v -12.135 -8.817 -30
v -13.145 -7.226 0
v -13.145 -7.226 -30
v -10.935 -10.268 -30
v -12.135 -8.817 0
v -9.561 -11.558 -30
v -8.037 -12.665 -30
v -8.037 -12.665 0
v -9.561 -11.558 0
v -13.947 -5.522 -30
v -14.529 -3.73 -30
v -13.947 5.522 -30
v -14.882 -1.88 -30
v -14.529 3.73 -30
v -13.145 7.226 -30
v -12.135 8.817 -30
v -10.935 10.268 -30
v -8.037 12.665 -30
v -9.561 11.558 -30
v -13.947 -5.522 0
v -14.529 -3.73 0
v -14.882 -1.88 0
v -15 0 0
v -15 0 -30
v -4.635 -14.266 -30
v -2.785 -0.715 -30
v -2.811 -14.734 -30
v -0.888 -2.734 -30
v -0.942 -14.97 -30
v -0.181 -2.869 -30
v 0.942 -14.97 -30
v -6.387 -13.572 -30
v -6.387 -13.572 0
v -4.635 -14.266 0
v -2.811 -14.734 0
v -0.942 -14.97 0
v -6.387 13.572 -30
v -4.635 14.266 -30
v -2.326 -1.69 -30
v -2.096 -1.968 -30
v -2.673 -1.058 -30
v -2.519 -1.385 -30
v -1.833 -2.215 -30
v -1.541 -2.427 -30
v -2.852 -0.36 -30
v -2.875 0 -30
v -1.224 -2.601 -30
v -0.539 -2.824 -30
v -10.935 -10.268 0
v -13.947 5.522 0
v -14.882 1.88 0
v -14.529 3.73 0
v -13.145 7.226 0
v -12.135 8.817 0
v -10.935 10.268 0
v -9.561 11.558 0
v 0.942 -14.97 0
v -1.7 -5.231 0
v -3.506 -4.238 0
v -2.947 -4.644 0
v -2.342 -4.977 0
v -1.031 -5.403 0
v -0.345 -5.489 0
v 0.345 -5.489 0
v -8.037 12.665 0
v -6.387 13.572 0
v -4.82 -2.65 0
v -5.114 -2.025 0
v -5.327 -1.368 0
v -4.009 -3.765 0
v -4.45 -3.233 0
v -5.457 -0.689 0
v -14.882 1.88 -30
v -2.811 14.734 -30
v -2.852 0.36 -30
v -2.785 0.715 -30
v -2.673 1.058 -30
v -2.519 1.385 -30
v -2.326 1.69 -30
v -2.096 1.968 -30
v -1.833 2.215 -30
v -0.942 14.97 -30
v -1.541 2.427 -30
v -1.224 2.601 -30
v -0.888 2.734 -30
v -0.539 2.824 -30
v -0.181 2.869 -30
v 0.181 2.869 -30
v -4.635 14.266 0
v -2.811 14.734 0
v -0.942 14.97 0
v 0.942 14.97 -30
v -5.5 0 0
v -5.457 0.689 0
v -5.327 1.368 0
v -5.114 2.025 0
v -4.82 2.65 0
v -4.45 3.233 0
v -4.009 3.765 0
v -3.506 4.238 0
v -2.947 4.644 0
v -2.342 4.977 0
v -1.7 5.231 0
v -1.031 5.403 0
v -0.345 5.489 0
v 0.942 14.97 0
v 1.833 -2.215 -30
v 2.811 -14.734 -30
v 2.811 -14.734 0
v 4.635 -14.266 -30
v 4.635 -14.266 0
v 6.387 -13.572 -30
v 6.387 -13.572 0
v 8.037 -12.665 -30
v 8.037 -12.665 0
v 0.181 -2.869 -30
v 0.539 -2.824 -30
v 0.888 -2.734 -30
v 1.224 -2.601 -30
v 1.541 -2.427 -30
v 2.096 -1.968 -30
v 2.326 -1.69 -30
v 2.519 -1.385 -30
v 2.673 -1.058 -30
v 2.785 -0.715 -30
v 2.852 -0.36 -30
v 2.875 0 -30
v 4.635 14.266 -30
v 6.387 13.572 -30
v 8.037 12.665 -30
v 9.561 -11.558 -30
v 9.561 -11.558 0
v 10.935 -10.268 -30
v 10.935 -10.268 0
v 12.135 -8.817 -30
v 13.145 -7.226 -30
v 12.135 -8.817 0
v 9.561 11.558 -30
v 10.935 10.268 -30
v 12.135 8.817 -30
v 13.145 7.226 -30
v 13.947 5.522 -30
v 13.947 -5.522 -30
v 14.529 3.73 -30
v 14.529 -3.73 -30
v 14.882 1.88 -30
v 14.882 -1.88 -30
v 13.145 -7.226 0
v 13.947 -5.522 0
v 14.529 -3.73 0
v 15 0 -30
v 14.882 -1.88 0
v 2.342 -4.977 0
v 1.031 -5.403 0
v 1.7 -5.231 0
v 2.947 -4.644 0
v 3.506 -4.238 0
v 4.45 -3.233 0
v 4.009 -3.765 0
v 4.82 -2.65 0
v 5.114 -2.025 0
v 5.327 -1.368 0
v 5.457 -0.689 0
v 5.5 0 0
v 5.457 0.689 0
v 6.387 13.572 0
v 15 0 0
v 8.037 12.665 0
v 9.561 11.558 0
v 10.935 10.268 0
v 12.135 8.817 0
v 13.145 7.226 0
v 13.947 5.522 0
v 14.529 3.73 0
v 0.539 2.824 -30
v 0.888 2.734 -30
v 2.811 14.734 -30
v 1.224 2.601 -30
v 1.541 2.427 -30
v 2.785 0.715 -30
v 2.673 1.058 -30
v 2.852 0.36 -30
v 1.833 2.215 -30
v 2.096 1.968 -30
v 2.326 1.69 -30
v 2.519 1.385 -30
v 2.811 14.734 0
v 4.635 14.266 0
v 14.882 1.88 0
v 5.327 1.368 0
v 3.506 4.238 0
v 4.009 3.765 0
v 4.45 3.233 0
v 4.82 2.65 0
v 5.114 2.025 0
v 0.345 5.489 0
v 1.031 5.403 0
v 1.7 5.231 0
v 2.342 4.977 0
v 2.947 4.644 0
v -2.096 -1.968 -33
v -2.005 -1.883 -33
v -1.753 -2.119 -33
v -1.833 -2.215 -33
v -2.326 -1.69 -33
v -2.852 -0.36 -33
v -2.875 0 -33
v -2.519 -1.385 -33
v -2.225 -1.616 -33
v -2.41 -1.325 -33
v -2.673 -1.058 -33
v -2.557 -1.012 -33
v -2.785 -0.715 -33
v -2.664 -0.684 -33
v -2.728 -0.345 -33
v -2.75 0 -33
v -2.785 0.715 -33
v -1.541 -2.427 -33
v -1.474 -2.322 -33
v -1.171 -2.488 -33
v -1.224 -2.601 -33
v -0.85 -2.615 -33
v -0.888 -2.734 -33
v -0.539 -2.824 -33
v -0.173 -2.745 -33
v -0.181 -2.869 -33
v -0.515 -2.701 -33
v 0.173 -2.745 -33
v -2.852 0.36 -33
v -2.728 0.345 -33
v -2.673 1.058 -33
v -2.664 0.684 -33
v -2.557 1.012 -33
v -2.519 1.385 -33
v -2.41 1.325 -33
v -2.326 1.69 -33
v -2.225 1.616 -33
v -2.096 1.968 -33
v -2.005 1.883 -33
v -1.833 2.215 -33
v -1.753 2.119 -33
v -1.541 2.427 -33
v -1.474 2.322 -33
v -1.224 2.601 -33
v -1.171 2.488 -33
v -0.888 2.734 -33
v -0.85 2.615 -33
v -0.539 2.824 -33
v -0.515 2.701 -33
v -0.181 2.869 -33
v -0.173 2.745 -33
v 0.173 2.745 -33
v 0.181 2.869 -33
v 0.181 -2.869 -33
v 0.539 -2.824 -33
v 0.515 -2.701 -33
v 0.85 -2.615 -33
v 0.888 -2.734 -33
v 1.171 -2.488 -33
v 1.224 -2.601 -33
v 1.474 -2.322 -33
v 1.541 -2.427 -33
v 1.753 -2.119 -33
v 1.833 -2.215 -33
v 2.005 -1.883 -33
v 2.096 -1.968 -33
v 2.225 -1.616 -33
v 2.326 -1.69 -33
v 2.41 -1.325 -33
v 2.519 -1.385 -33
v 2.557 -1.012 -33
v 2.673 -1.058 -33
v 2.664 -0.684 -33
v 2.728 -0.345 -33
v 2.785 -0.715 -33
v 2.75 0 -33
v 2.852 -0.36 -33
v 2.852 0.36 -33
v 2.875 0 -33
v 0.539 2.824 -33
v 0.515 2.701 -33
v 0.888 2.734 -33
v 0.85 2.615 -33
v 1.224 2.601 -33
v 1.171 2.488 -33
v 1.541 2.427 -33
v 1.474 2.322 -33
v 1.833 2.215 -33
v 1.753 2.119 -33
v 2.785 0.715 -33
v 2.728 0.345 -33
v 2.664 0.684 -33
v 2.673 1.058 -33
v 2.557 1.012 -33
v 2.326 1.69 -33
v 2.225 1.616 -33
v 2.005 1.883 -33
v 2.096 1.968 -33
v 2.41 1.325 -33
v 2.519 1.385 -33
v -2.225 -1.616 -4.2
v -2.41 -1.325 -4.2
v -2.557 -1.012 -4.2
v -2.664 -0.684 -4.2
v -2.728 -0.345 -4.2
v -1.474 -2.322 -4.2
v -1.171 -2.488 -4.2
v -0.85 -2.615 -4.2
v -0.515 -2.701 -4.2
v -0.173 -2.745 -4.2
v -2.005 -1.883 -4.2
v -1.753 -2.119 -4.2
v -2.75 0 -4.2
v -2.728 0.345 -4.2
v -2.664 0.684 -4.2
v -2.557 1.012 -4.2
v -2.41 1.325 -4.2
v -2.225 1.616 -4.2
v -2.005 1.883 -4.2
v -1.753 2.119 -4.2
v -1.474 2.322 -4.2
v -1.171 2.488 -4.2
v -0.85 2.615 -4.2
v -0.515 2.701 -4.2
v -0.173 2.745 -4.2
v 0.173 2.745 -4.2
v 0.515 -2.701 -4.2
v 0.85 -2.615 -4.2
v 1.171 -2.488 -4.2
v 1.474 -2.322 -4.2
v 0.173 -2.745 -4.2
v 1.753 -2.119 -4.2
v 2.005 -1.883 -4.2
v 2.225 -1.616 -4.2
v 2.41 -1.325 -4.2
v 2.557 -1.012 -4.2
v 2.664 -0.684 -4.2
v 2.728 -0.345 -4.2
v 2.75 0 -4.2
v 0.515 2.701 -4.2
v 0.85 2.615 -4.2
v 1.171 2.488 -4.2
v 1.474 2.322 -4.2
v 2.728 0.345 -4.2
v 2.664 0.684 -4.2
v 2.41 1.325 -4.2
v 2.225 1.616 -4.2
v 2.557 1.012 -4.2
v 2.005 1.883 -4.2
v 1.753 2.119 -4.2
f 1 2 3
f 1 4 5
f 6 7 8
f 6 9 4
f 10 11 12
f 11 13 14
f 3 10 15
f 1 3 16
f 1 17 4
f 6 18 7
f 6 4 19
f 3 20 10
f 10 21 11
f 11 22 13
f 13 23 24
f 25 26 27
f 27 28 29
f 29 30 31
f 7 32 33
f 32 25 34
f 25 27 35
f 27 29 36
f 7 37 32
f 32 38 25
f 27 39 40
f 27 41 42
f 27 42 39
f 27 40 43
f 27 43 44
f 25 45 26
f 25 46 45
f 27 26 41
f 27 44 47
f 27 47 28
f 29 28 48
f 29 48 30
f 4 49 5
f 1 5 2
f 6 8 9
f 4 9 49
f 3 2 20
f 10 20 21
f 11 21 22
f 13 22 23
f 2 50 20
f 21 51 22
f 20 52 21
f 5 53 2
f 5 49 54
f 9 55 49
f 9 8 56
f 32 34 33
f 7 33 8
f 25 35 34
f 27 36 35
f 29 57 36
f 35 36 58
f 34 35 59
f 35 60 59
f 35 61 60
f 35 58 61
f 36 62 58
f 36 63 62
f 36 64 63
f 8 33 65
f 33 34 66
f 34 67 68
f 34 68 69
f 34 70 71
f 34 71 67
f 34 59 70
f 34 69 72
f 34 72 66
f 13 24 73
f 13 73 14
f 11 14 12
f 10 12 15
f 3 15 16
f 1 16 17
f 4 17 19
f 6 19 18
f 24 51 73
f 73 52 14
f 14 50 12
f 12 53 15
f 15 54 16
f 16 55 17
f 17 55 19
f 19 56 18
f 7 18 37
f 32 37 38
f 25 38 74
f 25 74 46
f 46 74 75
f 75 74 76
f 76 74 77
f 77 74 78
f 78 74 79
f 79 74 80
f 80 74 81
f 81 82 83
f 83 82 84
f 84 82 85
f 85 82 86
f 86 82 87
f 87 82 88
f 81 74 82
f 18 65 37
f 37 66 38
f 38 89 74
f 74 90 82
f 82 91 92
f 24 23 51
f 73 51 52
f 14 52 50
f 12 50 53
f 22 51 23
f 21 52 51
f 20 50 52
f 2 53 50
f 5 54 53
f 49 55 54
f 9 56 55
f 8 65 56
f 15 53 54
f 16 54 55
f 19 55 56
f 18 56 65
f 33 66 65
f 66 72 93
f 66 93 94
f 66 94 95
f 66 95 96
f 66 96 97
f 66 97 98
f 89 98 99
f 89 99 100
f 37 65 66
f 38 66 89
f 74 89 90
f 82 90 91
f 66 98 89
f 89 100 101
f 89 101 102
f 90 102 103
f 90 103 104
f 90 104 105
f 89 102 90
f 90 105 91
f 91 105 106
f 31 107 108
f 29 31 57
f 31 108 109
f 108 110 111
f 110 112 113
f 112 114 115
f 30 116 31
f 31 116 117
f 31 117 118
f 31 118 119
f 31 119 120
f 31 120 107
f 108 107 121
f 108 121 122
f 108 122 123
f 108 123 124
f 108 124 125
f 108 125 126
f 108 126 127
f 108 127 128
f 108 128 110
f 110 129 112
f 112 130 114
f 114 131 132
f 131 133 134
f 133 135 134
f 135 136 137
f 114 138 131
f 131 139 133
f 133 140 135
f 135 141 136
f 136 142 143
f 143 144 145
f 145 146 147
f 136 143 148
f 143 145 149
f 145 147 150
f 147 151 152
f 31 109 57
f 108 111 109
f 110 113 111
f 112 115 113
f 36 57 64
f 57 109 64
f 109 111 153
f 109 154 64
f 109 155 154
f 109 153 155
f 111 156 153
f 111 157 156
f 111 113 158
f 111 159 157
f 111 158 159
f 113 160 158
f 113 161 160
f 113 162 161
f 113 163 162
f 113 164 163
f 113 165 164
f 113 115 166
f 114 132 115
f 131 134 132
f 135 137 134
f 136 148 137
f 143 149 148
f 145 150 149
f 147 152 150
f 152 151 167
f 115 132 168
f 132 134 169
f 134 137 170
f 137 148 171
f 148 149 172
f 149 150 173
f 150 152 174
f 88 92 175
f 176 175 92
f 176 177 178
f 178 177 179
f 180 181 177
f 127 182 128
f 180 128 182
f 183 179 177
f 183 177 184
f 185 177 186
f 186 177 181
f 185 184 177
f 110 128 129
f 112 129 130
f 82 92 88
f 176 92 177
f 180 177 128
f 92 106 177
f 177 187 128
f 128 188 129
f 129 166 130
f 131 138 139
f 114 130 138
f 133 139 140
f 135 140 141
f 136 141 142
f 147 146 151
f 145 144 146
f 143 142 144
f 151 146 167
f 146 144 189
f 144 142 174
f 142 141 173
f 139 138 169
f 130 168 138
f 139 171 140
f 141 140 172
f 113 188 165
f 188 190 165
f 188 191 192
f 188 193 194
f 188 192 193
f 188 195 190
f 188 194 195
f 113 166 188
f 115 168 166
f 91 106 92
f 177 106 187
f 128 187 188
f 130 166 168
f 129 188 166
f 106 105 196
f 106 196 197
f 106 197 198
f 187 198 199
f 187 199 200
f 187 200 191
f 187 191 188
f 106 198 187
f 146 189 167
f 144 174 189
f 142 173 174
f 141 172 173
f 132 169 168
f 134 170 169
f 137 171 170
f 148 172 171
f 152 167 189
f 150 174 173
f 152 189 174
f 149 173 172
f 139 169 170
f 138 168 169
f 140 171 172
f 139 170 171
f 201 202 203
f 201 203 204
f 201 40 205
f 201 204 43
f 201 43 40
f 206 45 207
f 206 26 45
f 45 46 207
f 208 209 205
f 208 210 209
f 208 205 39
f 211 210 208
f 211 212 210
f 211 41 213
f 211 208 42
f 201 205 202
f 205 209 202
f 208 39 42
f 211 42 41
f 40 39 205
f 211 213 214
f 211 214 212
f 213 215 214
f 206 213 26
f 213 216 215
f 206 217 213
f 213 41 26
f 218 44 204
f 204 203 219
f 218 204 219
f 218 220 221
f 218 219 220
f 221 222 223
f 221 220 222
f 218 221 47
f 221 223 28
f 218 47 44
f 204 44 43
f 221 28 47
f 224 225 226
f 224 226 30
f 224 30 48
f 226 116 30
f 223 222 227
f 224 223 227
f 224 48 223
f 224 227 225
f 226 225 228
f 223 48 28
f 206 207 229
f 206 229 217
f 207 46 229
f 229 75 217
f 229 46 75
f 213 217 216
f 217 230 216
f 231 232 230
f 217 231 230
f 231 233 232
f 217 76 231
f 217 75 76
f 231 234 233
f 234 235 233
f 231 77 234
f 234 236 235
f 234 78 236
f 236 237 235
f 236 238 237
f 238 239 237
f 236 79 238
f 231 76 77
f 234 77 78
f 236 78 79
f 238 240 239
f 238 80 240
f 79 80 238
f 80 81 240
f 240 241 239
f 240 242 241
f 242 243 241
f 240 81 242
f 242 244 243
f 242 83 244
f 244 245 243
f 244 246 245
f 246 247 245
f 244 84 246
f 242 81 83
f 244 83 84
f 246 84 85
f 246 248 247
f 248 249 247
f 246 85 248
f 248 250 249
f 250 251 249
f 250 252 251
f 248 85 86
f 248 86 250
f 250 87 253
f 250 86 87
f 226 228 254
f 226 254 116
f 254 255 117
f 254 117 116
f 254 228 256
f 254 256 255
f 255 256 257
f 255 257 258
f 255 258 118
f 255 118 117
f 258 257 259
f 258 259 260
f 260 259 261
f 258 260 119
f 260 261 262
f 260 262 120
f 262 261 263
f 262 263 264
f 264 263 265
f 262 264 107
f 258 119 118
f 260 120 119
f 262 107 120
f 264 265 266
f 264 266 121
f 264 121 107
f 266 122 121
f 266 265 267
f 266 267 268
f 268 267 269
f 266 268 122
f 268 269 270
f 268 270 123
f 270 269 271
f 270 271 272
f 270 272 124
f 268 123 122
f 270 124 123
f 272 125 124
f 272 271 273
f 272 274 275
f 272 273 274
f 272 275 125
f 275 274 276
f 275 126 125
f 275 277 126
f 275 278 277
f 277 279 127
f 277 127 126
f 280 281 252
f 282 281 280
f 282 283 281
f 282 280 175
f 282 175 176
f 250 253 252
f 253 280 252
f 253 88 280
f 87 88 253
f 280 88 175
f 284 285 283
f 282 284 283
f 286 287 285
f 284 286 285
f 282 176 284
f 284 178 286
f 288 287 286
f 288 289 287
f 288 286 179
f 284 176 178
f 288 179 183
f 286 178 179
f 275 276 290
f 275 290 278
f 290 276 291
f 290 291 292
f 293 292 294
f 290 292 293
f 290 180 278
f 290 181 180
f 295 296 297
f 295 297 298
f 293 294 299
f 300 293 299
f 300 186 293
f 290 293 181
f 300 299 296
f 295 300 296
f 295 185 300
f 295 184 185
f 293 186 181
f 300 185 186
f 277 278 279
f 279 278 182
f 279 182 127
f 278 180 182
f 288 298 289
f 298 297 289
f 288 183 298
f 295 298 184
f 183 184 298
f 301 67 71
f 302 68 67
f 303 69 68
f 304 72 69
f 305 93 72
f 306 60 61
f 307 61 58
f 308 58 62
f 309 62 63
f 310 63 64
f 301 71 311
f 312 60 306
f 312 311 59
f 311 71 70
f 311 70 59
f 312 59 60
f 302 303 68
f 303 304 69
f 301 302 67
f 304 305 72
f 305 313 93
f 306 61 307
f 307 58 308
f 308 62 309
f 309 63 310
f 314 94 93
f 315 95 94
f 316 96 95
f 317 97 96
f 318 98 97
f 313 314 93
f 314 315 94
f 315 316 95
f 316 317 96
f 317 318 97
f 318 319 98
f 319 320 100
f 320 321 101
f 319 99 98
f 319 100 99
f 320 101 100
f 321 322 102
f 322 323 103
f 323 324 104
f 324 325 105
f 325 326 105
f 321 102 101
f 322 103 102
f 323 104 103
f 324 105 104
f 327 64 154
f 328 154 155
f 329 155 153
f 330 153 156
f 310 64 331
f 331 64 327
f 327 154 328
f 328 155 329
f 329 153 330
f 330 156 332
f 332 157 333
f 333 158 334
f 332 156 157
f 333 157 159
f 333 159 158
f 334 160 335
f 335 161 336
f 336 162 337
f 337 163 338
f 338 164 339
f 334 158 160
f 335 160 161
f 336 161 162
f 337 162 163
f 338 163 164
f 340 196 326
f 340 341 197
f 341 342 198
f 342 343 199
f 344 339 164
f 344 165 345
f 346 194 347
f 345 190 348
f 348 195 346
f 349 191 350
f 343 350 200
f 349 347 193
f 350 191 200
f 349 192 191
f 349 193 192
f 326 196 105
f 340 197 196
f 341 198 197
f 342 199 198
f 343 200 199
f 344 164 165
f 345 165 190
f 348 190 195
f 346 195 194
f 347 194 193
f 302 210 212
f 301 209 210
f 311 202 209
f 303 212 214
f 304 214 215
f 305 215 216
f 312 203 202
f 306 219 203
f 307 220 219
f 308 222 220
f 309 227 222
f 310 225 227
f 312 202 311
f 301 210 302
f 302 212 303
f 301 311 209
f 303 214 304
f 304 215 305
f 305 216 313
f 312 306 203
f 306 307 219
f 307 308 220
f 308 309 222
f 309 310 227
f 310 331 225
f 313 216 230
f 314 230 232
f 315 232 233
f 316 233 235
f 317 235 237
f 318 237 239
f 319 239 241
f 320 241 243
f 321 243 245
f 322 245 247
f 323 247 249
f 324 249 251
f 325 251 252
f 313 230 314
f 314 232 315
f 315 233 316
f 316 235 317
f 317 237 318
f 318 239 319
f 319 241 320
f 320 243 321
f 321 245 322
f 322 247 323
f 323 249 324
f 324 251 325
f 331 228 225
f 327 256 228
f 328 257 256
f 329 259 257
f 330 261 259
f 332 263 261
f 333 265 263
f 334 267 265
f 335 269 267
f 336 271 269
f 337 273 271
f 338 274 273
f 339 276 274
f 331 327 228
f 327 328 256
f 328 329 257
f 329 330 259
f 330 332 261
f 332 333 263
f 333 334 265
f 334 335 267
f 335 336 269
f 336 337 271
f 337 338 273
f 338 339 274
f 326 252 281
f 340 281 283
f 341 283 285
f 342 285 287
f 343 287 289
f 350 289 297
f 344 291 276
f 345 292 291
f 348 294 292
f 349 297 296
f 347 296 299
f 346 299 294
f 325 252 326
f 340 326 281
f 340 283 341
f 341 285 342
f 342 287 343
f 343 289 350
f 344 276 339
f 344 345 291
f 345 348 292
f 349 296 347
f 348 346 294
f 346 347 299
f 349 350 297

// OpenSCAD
$fn = 50;


difference() {
	union() {
		translate(v = [0, 0, -30.0000000000]) {
			cylinder(h = 30, r = 15.0000000000);
		}
		#translate(v = [0, 0, -33.0000000000]) {
			cylinder(h = 33, r = 2.8750000000);
		}
	}
	union() {
		translate(v = [0, 0, 0]) {
			rotate(a = [0, 0, 0]) {
				difference() {
					union() {
						translate(v = [0, 0, -33.0000000000]) {
							cylinder(h = 33, r = 2.2500000000);
						}
						translate(v = [0, 0, -4.2000000000]) {
							cylinder(h = 4.2000000000, r1 = 2.7500000000, r2 = 5.5000000000);
						}
						translate(v = [0, 0, -33.0000000000]) {
							cylinder(h = 33, r = 2.7500000000);
						}
						translate(v = [0, 0, -33.0000000000]) {
							cylinder(h = 33, r = 2.2500000000);
						}
					}
					union();
				}
			}
		}
	}
}
